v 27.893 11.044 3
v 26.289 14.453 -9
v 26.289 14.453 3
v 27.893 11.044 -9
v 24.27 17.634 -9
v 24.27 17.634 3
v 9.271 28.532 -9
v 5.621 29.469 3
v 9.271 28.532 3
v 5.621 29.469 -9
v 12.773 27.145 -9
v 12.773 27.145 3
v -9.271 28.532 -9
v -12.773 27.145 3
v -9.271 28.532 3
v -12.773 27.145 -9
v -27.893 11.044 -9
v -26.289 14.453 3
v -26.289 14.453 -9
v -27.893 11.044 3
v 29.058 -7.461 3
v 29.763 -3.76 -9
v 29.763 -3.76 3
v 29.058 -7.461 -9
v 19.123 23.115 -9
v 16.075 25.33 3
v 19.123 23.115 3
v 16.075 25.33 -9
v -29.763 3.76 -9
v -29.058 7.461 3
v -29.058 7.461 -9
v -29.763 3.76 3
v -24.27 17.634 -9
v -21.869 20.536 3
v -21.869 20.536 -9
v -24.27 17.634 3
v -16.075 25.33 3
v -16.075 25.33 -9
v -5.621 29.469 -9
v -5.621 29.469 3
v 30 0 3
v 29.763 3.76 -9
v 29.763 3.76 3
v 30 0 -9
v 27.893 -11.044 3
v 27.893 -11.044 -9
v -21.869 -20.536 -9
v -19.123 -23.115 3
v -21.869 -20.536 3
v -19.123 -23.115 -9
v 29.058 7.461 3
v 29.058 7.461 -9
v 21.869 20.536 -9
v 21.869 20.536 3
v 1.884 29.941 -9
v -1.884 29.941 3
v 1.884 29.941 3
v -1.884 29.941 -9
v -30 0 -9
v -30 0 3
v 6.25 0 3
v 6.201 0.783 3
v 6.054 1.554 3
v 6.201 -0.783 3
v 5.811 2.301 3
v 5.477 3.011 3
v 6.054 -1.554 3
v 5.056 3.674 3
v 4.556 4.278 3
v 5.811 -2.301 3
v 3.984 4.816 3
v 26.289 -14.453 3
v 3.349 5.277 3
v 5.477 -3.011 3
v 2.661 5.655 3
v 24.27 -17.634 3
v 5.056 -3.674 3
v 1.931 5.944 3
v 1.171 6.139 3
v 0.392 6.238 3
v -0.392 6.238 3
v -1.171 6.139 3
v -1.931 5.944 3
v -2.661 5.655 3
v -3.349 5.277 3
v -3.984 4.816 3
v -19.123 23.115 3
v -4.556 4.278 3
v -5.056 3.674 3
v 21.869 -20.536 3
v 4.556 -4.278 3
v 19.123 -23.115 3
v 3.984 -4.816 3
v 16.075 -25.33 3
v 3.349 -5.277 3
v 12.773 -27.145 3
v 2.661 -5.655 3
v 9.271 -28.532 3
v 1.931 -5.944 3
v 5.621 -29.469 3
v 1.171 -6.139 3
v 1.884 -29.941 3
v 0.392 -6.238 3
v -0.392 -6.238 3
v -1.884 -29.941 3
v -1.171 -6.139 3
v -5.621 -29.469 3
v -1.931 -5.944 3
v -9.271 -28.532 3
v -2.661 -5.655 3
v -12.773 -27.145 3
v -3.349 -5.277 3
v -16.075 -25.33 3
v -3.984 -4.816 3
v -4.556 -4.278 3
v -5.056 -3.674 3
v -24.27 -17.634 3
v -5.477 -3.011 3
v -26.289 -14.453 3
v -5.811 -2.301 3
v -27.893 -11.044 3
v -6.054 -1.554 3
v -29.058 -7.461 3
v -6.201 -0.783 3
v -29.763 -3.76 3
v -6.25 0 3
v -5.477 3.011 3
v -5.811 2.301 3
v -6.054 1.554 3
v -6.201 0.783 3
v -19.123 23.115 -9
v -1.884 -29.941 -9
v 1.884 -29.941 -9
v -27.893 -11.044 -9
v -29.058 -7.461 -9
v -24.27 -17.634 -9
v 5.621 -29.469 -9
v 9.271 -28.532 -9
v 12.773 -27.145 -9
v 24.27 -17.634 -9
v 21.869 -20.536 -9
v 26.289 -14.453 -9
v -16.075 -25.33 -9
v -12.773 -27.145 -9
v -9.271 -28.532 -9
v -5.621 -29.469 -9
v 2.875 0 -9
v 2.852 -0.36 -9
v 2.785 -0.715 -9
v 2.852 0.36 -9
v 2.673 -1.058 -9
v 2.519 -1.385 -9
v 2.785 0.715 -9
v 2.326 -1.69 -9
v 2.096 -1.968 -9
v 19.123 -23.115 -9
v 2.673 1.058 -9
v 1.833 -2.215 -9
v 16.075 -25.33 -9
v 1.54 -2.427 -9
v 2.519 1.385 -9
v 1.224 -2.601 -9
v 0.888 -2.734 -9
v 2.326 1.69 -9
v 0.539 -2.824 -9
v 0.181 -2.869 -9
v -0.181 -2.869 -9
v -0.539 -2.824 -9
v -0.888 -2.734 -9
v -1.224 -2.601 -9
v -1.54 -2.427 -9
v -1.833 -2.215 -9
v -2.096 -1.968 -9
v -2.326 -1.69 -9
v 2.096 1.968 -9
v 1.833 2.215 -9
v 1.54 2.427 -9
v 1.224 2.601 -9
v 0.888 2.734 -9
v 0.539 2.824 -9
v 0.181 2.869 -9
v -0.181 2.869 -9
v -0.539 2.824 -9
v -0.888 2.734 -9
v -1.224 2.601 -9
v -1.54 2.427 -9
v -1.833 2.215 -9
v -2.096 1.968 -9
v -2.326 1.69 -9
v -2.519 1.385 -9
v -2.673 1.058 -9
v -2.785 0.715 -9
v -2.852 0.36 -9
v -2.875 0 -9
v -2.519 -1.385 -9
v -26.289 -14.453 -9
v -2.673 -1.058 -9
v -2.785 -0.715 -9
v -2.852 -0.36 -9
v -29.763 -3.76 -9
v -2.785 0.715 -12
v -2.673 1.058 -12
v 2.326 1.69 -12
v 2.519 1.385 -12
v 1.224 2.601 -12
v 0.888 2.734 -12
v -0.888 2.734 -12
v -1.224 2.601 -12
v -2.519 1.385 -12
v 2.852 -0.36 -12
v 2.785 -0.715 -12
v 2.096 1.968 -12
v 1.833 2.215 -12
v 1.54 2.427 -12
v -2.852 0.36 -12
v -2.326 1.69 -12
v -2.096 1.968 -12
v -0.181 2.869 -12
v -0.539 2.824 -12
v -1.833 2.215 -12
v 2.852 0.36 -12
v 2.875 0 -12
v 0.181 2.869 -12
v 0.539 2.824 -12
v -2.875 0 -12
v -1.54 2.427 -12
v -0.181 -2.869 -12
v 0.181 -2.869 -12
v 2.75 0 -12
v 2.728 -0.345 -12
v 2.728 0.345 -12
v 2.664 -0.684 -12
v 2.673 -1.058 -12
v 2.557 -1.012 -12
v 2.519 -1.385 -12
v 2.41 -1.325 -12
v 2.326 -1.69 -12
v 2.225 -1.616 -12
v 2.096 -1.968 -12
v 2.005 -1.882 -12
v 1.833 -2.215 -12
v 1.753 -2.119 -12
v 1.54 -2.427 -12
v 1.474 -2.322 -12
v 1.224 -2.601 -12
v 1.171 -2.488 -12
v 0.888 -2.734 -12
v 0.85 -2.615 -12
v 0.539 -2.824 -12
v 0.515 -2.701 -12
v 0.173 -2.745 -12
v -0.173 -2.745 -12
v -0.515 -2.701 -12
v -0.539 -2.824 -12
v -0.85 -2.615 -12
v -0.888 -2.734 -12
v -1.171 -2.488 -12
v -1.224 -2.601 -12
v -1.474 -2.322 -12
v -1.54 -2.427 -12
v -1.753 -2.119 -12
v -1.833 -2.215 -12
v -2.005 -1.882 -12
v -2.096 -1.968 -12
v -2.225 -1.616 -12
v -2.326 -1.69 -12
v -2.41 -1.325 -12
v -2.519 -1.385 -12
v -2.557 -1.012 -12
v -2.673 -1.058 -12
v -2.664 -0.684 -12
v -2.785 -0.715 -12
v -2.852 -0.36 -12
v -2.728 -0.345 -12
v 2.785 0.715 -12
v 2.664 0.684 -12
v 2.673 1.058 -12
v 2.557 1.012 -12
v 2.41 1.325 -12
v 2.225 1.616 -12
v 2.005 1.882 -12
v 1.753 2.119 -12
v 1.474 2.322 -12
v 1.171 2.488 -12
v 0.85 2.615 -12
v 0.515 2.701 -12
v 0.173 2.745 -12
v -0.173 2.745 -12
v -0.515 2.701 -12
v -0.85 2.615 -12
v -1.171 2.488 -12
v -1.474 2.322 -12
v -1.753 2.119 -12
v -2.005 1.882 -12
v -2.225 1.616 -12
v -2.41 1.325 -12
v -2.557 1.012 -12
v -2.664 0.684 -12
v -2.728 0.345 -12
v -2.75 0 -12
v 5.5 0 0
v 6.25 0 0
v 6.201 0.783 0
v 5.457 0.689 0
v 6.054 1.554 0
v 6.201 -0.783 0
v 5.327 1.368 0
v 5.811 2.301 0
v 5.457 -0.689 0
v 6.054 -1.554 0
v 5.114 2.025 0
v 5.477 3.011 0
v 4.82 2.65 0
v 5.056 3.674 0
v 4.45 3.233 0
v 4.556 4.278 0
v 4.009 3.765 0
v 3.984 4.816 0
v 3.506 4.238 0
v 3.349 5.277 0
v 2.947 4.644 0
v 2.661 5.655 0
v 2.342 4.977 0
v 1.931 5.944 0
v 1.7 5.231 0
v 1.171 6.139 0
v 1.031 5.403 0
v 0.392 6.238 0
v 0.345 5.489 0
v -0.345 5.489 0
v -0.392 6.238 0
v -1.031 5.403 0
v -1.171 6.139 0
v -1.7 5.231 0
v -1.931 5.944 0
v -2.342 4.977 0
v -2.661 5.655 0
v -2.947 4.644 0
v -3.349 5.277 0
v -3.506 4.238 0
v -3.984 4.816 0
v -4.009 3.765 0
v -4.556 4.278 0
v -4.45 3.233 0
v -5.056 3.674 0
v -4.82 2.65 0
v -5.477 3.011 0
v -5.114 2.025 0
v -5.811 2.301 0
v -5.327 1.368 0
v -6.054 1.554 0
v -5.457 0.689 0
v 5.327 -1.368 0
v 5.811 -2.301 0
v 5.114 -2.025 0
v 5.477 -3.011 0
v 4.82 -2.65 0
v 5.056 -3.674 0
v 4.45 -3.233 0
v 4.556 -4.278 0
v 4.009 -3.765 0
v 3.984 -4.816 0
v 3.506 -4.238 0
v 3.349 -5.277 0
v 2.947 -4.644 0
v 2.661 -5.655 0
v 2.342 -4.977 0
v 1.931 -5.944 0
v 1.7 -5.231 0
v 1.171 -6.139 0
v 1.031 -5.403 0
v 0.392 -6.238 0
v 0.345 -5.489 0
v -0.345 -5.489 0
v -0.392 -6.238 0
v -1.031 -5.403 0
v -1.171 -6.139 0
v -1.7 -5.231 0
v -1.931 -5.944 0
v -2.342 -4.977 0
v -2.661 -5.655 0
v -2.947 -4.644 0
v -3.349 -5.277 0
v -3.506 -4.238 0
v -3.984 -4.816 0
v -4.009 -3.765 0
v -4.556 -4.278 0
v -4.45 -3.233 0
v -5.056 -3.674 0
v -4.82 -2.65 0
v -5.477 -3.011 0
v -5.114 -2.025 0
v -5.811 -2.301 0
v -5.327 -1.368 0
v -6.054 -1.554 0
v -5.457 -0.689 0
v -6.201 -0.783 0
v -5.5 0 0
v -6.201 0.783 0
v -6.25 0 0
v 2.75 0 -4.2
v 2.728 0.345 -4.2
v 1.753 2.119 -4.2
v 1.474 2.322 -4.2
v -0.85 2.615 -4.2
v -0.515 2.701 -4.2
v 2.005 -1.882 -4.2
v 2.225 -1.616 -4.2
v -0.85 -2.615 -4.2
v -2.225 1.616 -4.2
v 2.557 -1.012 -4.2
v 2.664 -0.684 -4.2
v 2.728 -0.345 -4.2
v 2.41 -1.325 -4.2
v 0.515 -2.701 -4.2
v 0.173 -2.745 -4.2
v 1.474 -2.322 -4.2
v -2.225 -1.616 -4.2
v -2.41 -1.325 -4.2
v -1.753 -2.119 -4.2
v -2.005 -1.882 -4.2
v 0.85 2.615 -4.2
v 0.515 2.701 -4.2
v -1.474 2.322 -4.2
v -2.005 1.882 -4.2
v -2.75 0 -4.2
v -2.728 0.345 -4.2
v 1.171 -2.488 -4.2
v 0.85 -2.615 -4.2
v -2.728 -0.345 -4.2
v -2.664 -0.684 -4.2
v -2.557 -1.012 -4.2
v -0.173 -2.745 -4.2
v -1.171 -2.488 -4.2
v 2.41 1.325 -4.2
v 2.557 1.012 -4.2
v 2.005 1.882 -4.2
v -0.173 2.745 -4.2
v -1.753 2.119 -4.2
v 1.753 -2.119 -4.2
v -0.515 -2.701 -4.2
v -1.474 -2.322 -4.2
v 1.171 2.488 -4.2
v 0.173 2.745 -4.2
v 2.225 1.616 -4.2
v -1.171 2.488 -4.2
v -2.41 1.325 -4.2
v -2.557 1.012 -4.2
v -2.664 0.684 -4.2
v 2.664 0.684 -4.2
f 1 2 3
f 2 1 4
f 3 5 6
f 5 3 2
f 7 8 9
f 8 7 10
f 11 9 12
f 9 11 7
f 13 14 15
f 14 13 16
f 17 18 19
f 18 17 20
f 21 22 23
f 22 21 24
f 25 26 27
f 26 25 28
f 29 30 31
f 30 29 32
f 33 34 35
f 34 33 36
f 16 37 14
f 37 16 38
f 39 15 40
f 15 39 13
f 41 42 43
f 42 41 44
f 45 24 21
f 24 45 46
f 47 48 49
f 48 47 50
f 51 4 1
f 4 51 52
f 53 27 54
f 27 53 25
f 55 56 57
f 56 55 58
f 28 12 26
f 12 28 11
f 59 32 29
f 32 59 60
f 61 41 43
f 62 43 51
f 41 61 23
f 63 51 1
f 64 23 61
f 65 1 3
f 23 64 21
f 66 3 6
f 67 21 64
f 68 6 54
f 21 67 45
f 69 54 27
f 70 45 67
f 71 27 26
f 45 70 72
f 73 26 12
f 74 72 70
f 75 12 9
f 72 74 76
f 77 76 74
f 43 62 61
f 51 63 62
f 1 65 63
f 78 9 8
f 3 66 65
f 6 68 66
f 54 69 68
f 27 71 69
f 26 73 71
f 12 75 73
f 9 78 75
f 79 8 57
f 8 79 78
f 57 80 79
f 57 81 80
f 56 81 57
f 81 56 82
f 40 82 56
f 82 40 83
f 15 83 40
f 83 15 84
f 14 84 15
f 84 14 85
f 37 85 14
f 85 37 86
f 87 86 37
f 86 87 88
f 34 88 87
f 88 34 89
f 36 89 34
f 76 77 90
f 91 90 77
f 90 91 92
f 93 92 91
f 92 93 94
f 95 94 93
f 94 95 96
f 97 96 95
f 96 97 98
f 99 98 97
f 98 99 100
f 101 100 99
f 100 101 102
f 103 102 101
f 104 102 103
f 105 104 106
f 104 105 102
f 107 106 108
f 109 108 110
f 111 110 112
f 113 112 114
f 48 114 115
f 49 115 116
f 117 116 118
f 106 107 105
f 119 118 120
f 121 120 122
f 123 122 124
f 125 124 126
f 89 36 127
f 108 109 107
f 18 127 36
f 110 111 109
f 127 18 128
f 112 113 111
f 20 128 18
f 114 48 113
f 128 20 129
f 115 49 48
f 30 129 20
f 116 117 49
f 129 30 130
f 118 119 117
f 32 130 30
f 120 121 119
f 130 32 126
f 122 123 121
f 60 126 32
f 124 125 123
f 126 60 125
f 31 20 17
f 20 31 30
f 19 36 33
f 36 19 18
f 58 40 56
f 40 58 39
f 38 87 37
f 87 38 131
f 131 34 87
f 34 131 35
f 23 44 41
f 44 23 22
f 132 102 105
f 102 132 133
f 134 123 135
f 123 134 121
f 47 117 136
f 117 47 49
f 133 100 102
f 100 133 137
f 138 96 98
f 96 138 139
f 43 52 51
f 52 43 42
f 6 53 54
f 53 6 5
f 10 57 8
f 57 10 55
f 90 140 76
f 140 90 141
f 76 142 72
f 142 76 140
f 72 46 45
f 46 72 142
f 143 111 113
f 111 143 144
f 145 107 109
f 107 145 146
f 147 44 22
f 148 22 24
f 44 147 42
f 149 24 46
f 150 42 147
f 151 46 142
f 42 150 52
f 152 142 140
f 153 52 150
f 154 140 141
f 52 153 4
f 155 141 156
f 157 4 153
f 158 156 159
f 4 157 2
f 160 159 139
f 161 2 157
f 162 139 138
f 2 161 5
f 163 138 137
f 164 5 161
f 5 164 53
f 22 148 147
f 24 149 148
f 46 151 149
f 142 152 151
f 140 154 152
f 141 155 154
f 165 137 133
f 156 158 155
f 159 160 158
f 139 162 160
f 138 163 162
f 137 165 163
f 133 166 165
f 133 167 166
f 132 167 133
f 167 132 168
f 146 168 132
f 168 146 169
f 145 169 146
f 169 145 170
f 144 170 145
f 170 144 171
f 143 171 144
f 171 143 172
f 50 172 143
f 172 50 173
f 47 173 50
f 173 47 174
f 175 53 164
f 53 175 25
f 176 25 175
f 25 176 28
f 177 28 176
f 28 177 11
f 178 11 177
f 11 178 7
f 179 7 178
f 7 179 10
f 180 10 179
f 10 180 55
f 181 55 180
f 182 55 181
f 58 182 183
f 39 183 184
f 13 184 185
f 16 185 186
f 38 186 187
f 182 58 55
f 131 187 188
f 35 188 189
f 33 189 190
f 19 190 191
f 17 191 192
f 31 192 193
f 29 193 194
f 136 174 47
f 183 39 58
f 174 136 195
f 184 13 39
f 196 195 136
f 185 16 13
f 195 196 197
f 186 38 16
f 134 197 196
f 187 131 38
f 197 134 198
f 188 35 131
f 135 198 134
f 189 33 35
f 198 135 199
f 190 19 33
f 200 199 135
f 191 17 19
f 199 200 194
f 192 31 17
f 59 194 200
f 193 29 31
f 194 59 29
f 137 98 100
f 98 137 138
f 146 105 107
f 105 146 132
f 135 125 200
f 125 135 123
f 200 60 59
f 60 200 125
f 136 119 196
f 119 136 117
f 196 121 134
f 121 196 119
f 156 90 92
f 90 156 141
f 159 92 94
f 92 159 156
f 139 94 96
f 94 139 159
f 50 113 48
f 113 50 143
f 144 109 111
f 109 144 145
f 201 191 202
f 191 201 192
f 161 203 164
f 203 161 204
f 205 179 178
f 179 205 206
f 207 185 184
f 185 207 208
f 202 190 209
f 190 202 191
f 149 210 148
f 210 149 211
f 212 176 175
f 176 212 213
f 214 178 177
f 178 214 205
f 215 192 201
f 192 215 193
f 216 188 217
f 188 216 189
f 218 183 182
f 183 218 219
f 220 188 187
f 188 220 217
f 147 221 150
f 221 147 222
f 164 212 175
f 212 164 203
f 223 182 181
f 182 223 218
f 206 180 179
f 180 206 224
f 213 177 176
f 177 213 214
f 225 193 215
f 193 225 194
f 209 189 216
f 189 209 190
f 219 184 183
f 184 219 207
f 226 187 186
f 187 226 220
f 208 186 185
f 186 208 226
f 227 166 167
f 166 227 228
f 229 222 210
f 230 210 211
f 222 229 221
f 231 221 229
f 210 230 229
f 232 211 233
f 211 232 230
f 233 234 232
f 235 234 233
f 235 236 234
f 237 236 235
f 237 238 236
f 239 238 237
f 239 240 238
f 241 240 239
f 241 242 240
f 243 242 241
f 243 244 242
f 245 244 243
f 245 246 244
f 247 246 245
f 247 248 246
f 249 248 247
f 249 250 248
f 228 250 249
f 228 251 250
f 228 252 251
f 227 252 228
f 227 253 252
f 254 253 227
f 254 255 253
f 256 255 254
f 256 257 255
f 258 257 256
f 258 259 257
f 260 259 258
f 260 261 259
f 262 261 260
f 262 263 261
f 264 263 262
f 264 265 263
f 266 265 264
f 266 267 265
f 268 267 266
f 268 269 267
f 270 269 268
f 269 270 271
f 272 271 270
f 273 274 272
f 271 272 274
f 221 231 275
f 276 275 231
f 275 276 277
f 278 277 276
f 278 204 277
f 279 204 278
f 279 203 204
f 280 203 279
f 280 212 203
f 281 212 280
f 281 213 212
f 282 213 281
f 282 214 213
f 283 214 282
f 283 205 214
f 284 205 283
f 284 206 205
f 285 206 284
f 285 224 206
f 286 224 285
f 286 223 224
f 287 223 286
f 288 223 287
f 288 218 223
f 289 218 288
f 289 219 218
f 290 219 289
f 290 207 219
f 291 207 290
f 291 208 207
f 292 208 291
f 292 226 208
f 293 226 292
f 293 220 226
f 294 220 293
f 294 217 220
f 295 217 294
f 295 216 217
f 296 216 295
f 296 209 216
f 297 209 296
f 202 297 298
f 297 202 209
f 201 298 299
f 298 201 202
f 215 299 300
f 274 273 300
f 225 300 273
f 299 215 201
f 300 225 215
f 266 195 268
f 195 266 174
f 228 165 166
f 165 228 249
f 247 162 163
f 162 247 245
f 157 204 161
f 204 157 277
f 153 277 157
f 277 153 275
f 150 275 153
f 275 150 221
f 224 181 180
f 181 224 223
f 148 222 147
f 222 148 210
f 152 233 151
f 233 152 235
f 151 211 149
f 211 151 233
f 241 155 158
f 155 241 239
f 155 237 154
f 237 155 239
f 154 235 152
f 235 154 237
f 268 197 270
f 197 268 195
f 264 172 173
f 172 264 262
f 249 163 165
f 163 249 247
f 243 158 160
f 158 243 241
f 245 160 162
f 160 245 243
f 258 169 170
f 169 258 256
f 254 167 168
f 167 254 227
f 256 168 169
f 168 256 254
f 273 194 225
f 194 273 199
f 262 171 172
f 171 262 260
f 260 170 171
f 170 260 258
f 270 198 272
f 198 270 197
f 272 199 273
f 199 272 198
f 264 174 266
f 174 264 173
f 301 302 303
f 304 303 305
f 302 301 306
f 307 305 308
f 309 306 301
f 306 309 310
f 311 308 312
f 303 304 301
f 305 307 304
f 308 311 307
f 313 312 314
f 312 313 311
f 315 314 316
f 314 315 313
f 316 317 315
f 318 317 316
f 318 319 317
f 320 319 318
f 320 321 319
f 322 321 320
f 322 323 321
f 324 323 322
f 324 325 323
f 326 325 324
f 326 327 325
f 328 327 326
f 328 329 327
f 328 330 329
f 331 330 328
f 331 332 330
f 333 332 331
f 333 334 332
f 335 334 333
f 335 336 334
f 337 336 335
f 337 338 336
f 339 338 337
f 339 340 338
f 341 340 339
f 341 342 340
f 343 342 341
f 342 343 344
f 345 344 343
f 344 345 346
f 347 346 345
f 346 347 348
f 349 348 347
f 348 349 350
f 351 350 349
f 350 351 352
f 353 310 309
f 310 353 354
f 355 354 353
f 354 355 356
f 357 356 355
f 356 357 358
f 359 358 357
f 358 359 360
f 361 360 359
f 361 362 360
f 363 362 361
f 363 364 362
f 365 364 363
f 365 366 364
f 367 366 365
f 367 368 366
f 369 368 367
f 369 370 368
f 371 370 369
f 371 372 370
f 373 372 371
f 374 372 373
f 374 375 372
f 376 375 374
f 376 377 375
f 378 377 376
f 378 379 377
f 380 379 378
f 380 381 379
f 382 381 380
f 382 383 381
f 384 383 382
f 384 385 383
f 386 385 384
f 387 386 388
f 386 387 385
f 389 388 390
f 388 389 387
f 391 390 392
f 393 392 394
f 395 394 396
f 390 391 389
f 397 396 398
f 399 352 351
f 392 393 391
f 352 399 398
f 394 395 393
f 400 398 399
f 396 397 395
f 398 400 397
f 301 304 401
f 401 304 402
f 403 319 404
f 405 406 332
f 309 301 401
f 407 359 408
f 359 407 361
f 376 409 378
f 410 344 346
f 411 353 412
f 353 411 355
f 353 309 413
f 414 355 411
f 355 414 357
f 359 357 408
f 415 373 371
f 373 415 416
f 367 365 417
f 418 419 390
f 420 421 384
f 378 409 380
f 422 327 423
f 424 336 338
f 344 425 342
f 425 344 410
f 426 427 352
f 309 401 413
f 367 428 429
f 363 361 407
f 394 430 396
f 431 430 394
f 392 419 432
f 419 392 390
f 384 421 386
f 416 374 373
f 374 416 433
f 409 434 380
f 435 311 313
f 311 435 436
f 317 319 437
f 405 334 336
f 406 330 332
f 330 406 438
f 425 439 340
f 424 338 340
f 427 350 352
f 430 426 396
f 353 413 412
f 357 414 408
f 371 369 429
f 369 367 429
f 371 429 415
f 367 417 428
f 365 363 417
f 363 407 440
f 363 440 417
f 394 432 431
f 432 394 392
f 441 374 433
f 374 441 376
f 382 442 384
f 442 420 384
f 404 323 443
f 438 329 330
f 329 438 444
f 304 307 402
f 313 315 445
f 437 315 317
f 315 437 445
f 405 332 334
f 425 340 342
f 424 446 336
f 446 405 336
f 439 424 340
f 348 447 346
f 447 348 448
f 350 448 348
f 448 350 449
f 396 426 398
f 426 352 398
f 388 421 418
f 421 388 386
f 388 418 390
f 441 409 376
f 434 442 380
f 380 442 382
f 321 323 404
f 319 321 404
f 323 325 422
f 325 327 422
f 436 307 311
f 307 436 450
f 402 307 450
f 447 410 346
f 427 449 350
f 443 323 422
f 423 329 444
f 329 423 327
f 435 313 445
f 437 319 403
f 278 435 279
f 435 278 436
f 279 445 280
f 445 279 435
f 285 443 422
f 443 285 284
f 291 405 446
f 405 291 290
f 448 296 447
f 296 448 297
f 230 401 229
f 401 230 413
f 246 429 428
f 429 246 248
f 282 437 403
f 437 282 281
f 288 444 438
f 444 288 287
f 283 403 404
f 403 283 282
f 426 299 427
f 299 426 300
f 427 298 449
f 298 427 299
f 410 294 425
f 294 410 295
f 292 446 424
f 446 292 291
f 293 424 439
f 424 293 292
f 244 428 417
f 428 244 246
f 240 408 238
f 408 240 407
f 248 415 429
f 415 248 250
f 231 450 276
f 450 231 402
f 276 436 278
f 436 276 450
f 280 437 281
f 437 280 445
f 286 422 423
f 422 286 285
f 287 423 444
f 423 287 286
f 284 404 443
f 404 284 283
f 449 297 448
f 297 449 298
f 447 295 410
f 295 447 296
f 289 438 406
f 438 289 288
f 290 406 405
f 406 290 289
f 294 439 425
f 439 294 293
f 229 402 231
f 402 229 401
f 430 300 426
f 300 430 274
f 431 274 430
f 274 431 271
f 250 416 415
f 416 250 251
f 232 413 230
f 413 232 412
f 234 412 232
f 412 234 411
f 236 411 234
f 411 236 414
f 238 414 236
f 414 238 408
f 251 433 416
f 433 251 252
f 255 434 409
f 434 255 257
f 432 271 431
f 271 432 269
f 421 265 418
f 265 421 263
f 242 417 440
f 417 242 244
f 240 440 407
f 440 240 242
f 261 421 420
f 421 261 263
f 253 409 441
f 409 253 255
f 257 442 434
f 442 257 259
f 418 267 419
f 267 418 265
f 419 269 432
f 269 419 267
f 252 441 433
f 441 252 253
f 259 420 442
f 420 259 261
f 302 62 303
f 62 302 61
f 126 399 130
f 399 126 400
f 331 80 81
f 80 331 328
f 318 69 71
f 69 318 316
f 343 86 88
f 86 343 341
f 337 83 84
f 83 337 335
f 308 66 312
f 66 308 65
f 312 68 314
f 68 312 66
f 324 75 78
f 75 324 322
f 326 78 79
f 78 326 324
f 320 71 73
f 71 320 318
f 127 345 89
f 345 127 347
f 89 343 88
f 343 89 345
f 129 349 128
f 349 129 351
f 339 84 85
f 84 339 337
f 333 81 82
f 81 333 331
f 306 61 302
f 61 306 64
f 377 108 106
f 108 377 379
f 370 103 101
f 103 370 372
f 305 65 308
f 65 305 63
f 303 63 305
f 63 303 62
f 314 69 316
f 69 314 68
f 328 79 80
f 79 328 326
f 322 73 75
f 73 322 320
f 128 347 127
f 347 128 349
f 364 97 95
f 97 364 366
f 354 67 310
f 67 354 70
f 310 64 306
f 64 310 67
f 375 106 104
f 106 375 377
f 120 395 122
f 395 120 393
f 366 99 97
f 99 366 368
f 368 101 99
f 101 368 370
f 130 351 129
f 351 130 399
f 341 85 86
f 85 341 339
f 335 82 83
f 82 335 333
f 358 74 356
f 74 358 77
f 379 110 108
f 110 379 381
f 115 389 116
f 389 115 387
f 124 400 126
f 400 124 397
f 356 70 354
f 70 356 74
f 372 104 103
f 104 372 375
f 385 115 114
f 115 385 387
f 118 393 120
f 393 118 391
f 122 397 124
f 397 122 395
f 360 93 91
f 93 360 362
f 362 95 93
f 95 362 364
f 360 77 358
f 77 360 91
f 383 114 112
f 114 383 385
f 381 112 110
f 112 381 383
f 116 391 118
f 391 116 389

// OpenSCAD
$fn = 50;


difference() {
	union() {
		translate(v = [0, 0, -9.0000000000]) {
			cylinder(h = 12, r = 30.0000000000);
		}
		#translate(v = [0, 0, -12.0000000000]) {
			cylinder(h = 12, r = 2.8750000000);
		}
	}
	union() {
		translate(v = [0, 0, 0]) {
			rotate(a = [0, 0, 0]) {
				difference() {
					union() {
						translate(v = [0, 0, -12.0000000000]) {
							cylinder(h = 12, r = 2.2500000000);
						}
						translate(v = [0, 0, -4.2000000000]) {
							cylinder(h = 4.2000000000, r1 = 2.7500000000, r2 = 5.5000000000);
						}
						translate(v = [0, 0, -12.0000000000]) {
							cylinder(h = 12, r = 2.7500000000);
						}
						translate(v = [0, 0, -12.0000000000]) {
							cylinder(h = 12, r = 2.2500000000);
						}
					}
					union();
				}
			}
		}
		#cylinder(h = 3, r = 6.2500000000);
	}
}
